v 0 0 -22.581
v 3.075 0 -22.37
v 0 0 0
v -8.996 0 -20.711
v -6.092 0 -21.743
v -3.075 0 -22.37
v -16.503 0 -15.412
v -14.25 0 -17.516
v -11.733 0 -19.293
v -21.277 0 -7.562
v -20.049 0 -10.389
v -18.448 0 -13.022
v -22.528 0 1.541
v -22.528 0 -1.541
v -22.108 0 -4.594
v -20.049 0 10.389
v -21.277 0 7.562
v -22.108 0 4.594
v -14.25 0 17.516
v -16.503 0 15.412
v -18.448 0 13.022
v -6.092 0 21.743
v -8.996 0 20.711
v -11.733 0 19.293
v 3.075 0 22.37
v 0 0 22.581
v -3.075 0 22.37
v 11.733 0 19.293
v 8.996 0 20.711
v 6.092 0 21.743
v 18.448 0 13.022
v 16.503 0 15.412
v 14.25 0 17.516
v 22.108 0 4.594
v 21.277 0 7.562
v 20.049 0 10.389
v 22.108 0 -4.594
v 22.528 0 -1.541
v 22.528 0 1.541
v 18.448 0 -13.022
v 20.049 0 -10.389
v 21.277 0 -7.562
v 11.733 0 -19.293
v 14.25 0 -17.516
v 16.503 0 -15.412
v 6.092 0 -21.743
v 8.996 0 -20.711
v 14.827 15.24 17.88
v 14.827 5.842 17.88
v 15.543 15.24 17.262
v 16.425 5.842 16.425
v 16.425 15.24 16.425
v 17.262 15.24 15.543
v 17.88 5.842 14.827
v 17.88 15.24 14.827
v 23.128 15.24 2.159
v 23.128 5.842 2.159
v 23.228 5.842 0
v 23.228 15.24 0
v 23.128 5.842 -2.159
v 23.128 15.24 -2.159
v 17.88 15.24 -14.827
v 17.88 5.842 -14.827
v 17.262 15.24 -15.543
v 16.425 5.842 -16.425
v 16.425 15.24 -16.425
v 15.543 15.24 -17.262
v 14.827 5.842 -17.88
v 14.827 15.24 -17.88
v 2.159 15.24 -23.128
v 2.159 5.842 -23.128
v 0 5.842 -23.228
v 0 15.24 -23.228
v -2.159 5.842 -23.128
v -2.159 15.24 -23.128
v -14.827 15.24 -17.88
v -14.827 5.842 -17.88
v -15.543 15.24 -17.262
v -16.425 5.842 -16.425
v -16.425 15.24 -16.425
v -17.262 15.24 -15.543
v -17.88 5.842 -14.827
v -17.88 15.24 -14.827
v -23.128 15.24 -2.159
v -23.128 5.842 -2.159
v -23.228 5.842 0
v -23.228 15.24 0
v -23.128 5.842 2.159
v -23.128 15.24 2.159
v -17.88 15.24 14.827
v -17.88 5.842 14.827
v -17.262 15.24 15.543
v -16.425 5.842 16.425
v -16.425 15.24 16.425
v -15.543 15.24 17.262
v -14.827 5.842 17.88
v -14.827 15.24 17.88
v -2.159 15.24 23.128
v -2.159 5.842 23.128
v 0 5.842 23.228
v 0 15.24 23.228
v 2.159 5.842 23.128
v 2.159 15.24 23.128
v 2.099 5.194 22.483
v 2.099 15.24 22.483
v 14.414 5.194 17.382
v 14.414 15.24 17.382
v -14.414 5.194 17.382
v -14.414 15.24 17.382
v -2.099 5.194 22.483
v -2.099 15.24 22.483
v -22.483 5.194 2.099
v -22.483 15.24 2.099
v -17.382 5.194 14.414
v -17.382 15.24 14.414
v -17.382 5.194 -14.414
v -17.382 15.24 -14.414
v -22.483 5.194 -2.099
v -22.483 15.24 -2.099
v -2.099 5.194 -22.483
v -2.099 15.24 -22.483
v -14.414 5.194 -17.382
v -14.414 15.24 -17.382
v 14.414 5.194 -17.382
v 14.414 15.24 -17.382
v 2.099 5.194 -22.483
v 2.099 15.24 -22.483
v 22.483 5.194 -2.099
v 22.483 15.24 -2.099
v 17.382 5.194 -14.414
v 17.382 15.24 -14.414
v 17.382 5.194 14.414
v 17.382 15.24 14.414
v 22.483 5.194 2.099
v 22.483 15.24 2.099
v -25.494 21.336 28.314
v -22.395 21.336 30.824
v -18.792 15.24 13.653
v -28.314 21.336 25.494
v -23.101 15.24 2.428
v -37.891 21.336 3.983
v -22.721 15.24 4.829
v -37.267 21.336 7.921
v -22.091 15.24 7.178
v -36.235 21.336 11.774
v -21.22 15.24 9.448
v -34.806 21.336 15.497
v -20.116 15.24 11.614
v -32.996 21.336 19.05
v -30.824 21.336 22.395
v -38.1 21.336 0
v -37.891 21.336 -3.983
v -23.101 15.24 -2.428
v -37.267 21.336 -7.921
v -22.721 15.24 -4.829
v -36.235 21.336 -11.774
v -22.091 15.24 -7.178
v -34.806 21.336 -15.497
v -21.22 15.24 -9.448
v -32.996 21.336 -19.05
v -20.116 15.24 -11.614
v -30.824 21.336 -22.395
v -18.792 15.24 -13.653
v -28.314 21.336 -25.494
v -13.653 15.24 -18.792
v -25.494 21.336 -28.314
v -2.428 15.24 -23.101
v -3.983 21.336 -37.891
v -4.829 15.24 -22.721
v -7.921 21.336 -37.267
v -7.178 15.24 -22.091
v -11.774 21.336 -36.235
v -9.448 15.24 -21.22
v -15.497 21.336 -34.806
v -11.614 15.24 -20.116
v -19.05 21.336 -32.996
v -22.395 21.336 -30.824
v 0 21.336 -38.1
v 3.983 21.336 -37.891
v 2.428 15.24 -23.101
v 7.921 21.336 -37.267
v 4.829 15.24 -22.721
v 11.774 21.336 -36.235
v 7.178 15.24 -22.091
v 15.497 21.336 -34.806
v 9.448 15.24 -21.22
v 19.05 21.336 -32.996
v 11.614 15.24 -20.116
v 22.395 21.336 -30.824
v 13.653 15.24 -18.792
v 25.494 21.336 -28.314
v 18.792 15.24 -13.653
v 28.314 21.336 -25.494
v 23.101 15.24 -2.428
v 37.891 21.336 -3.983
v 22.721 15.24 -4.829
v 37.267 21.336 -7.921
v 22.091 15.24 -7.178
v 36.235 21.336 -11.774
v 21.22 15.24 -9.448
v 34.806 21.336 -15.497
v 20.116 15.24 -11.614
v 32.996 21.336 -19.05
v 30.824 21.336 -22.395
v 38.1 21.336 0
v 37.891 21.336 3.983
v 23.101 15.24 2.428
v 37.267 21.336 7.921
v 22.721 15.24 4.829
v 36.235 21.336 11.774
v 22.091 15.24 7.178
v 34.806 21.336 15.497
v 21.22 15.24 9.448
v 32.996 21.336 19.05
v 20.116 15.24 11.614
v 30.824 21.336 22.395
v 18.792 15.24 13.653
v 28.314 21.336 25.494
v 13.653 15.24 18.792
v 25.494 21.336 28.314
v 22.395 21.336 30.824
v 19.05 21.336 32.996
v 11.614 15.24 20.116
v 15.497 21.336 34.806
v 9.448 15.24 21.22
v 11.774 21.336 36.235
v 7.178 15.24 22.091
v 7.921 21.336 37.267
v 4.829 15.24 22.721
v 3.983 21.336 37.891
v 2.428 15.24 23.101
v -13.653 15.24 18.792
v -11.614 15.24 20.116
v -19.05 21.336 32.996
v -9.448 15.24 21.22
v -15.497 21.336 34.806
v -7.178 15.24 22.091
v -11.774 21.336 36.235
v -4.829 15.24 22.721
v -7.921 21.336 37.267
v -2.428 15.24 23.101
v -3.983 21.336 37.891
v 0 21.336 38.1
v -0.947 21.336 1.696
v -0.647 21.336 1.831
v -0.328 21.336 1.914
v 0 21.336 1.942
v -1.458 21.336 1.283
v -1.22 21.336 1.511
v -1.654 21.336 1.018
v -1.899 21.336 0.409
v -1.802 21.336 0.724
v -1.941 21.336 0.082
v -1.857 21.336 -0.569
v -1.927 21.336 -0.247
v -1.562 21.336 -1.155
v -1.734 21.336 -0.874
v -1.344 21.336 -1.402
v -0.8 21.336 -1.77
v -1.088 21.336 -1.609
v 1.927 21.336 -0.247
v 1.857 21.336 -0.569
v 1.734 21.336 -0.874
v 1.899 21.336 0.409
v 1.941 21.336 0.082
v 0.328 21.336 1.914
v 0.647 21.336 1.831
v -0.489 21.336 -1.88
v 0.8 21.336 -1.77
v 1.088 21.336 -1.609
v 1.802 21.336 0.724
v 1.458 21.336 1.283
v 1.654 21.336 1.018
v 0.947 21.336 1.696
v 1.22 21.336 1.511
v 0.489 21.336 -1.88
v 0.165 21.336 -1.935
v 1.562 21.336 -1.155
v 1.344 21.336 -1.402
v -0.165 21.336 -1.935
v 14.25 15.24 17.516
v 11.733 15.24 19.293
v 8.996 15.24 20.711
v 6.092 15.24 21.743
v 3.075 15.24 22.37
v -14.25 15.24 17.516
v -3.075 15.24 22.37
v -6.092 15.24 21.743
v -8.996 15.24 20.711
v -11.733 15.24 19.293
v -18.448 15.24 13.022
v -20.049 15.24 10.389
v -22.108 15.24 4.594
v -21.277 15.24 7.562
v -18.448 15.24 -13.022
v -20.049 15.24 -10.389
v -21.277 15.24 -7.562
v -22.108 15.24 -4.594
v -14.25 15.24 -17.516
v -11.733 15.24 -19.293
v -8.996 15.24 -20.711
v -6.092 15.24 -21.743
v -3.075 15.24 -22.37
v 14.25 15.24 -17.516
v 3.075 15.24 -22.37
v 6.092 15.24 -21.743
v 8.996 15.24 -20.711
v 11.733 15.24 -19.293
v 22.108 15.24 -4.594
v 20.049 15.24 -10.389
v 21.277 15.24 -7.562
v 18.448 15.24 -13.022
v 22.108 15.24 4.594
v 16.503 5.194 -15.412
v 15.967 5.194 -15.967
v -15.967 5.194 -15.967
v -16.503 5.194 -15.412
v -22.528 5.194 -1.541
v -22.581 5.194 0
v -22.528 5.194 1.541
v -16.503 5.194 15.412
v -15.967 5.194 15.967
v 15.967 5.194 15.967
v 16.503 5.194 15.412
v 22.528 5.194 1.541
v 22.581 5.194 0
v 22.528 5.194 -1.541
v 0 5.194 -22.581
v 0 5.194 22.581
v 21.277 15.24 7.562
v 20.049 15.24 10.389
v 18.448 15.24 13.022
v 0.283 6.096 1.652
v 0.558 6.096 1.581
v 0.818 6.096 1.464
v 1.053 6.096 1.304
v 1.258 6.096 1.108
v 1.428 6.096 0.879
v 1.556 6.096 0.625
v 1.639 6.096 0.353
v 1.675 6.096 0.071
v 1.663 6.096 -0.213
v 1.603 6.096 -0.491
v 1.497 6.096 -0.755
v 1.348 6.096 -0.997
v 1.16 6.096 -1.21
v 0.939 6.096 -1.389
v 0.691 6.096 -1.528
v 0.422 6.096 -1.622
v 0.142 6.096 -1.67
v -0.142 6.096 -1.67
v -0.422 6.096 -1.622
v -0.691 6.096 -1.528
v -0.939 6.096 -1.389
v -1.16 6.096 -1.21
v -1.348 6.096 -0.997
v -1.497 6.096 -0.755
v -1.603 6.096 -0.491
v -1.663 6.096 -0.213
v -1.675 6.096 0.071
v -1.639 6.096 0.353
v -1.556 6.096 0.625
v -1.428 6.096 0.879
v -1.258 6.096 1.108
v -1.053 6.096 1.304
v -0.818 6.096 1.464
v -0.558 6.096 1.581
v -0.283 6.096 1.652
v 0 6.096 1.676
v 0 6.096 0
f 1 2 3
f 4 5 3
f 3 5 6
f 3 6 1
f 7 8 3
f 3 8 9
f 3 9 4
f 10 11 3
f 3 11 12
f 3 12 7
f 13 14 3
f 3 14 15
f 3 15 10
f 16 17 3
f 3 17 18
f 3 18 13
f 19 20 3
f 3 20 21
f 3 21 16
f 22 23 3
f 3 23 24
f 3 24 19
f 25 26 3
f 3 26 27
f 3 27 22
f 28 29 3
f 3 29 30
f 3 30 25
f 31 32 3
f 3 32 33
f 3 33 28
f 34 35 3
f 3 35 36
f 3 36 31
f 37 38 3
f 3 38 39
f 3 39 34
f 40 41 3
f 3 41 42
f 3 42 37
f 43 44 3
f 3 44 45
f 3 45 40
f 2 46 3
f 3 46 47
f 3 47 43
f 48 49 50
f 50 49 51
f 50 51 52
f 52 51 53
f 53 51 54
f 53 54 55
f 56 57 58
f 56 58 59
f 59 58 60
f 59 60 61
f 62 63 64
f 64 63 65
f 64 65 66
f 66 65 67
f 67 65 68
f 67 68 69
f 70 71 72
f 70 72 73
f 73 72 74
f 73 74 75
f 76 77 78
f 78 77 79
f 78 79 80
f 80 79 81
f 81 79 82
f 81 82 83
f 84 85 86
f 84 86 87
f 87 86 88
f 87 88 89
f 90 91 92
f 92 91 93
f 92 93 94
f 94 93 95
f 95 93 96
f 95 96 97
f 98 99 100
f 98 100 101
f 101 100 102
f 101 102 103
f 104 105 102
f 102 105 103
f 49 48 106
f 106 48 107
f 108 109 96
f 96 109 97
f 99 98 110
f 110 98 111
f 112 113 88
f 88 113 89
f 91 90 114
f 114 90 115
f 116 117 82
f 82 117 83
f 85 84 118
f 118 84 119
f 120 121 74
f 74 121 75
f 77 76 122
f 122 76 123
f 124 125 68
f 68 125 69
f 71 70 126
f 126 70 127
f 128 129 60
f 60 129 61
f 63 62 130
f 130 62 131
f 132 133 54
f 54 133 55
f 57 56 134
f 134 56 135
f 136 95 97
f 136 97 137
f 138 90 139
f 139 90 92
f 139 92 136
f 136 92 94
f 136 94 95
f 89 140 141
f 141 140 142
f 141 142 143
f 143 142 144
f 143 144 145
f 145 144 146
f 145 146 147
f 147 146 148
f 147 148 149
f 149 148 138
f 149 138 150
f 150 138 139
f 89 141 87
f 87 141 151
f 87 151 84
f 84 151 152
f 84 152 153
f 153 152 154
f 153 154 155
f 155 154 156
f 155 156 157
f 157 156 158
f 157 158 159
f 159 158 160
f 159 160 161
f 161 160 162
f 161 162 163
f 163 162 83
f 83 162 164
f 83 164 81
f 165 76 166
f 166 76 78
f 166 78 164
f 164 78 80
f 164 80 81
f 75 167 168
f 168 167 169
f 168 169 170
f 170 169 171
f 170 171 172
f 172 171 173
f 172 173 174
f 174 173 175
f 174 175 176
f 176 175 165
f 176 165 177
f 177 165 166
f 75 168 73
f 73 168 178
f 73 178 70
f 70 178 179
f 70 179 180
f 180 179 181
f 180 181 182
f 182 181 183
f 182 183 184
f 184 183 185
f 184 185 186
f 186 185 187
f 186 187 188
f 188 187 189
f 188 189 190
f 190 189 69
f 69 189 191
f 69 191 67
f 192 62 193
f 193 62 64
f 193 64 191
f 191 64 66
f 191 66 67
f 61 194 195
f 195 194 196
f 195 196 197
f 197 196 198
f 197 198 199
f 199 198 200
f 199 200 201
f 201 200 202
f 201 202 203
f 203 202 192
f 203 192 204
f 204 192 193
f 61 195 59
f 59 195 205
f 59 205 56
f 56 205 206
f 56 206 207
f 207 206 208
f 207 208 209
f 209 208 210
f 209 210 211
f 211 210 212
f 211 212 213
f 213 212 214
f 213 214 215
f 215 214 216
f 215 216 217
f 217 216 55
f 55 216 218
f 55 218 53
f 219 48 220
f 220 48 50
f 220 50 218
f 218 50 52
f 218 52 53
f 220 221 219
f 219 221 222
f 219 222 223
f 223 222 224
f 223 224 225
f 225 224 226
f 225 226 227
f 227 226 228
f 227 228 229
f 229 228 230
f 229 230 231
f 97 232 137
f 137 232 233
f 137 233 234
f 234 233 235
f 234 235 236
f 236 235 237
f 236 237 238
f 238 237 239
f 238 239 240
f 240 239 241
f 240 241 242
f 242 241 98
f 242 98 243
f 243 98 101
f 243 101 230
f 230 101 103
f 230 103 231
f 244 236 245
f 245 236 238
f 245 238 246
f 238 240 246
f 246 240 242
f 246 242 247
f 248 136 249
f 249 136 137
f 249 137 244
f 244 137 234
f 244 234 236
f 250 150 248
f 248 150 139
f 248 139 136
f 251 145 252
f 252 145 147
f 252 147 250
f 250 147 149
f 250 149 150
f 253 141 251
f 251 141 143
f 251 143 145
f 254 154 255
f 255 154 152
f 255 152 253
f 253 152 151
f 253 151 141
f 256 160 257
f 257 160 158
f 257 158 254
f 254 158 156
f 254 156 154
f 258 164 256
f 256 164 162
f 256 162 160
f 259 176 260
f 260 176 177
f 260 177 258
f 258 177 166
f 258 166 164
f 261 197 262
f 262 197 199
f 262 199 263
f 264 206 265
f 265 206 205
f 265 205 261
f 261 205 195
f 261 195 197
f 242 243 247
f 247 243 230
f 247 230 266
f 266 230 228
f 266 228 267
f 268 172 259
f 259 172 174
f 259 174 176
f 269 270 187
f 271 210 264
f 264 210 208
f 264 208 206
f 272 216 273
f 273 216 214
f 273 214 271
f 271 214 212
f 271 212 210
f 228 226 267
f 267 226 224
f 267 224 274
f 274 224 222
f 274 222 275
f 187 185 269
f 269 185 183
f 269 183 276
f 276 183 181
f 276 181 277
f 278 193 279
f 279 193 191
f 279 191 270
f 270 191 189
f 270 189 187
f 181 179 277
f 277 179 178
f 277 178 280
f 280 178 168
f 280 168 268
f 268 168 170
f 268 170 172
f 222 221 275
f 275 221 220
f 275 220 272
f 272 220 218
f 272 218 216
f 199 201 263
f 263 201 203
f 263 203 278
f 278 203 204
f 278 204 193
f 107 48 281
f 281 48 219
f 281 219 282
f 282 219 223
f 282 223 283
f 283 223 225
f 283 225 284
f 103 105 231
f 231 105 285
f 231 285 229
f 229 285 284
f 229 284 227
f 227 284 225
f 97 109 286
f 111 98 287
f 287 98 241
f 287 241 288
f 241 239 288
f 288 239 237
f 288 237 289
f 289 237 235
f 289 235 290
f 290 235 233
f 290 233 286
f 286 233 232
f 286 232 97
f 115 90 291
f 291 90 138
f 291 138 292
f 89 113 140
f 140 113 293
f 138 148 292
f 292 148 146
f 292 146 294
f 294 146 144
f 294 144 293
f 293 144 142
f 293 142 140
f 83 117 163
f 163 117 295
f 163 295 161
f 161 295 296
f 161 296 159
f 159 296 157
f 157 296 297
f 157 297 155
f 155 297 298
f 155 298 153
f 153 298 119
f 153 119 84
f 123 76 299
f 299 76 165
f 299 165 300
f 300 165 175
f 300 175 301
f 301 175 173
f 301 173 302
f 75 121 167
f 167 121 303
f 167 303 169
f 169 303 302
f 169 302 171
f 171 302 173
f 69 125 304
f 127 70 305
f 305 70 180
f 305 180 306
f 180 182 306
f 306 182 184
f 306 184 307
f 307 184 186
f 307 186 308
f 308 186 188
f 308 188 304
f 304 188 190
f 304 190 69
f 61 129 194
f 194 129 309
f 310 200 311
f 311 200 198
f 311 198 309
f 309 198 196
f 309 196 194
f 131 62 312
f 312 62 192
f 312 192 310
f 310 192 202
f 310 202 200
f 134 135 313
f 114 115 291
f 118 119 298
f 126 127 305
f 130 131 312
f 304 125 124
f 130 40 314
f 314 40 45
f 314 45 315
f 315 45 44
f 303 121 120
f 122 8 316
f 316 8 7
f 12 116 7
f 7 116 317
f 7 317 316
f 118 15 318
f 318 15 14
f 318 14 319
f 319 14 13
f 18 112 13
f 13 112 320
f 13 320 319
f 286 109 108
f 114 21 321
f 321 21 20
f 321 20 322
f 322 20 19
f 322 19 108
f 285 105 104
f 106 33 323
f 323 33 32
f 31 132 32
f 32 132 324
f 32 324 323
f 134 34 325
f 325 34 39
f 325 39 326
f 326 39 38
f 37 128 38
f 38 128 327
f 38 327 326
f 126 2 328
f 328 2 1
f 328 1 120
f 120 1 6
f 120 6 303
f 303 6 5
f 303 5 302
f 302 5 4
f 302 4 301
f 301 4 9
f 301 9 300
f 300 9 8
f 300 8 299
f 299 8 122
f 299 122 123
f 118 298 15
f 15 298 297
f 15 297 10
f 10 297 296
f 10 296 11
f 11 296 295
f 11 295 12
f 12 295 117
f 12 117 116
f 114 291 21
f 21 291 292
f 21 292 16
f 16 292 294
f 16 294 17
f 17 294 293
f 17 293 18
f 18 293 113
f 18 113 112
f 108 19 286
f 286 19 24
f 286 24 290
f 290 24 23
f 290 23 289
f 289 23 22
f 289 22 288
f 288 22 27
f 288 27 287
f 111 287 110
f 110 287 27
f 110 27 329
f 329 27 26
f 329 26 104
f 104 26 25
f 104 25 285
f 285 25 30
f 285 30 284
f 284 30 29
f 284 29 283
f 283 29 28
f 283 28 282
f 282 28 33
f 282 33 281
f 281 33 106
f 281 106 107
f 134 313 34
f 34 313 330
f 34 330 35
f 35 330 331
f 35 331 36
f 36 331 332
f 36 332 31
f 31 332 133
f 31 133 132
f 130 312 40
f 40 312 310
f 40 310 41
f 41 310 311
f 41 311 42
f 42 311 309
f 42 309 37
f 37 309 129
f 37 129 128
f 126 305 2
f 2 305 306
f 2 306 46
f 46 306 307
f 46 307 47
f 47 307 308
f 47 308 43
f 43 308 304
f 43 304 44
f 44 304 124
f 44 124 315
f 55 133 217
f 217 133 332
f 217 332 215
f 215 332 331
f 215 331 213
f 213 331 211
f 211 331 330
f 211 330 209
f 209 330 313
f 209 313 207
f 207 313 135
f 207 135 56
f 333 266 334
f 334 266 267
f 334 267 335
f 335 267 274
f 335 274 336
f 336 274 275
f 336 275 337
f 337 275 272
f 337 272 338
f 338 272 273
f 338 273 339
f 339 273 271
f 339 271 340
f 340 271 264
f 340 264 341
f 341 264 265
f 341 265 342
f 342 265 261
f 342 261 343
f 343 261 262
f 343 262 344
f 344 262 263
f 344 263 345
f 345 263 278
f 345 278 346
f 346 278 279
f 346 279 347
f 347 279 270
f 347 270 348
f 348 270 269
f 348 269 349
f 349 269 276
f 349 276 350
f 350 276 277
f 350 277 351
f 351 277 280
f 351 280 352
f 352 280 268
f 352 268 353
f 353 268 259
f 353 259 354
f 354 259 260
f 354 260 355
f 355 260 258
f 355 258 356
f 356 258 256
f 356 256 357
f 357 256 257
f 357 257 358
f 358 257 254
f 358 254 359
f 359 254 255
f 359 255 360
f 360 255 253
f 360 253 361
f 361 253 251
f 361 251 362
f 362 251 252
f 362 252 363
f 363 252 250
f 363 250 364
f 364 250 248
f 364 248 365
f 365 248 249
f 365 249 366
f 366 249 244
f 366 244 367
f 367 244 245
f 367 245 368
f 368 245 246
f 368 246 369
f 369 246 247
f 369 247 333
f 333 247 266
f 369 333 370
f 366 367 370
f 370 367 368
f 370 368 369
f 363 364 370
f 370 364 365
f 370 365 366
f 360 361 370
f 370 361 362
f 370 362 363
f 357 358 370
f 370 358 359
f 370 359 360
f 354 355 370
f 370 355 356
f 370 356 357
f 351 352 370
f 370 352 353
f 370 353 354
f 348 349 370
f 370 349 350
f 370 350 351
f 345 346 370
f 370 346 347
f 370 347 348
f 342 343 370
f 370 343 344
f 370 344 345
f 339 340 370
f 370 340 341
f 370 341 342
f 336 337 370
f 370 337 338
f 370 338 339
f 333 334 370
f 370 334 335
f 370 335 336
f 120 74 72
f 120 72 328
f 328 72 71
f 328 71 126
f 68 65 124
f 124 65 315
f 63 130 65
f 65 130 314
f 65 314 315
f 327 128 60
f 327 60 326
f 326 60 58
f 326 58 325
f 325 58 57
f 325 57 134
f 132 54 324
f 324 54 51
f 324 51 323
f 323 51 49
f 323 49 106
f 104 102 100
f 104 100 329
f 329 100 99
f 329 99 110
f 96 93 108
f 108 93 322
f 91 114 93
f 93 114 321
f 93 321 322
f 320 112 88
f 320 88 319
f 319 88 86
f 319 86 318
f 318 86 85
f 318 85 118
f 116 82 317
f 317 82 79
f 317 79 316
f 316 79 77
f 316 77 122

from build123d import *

# Parameters (mm, degrees)
SKETCH1_W          = 23.2283
SKETCH1_H          = 15.24
CUT_EXTRUDE1_START = -15.24
CUT_EXTRUDE1_DEPTH = 15.24
SKETCH3_R          = 1.6764
CUT_EXTRUDE2_DEPTH = 15.24
CUT_EXTRUDE3_START = -5.08
SKETCH4_R          = 23.2283
SKETCH4_R_2        = 22.5806
CUT_EXTRUDE3_DEPTH = 5.08
CHAMFER1_SIZE      = 0.762
DRAFT1_ANGLE       = 1


with BuildPart() as part:
    # Sketch1 → Revolve1 (revolve)
    with BuildSketch(Plane.XY, mode=Mode.PRIVATE) as revolve1_sk:
        with Locations((11.61415, 7.62)):
            Rectangle(SKETCH1_W, SKETCH1_H)
        Polygon((0, 21.336), (0, 15.24), (23.2283, 15.24), (38.1, 21.336), align=None)
    revolve(revolve1_sk.sketch.rotate(Axis((0, 0, 0), (0, 1, 0)), 90), axis=Axis((0, 0, 0), (0, 1, 0)))

    # Sketch2 → Cut-Extrude1 (cut)
    with BuildSketch(Plane.XZ.offset(CUT_EXTRUDE1_START)):
        with BuildLine():
            Line((2.159, 23.127746105), (2.09879825, 22.482849959))
            ThreePointArc((2.09879825, 22.482849959), (8.641221513, 20.861754172), (14.413701191, 17.381850141))
            Line((14.413701191, 17.381850141), (14.827142564, 17.880429645))
            ThreePointArc((14.827142564, 17.880429645), (8.889085572, 21.460150945), (2.159, 23.127746105))
        make_face()
        with BuildLine():
            ThreePointArc((-14.413701191, 17.381850141), (-8.641221513, 20.861754172), (-2.09879825, 22.482849959))
            Line((-2.09879825, 22.482849959), (-2.159, 23.127746105))
            ThreePointArc((-2.159, 23.127746105), (-8.889085572, 21.460150945), (-14.827142564, 17.880429645))
            Line((-14.827142564, 17.880429645), (-14.413701191, 17.381850141))
        make_face()
        with BuildLine():
            Line((-23.127746105, 2.159), (-22.482849959, 2.09879825))
            ThreePointArc((-22.482849959, 2.09879825), (-20.861754172, 8.641221513), (-17.381850141, 14.413701191))
            Line((-17.381850141, 14.413701191), (-17.880429645, 14.827142564))
            ThreePointArc((-17.880429645, 14.827142564), (-21.460150945, 8.889085572), (-23.127746105, 2.159))
        make_face()
        with BuildLine():
            Line((-17.880429645, -14.827142564), (-17.381850141, -14.413701191))
            ThreePointArc((-17.381850141, -14.413701191), (-20.861754172, -8.641221513), (-22.482849959, -2.09879825))
            Line((-22.482849959, -2.09879825), (-23.127746105, -2.159))
            ThreePointArc((-23.127746105, -2.159), (-21.460150945, -8.889085572), (-17.880429645, -14.827142564))
        make_face()
        with BuildLine():
            Line((-2.159, -23.127746105), (-2.09879825, -22.482849959))
            ThreePointArc((-2.09879825, -22.482849959), (-8.641221513, -20.861754172), (-14.413701191, -17.381850141))
            Line((-14.413701191, -17.381850141), (-14.827142564, -17.880429645))
            ThreePointArc((-14.827142564, -17.880429645), (-8.889085572, -21.460150945), (-2.159, -23.127746105))
        make_face()
        with BuildLine():
            Line((14.827142564, -17.880429645), (14.413701191, -17.381850141))
            ThreePointArc((14.413701191, -17.381850141), (8.641221513, -20.861754172), (2.09879825, -22.482849959))
            Line((2.09879825, -22.482849959), (2.159, -23.127746105))
            ThreePointArc((2.159, -23.127746105), (8.889085572, -21.460150945), (14.827142564, -17.880429645))
        make_face()
        with BuildLine():
            Line((23.127746105, -2.159), (22.482849959, -2.09879825))
            ThreePointArc((22.482849959, -2.09879825), (20.861754172, -8.641221513), (17.381850141, -14.413701191))
            Line((17.381850141, -14.413701191), (17.880429645, -14.827142564))
            ThreePointArc((17.880429645, -14.827142564), (21.460150945, -8.889085572), (23.127746105, -2.159))
        make_face()
        with BuildLine():
            Line((17.880429645, 14.827142564), (17.381850141, 14.413701191))
            ThreePointArc((17.381850141, 14.413701191), (20.861754172, 8.641221513), (22.482849959, 2.09879825))
            Line((22.482849959, 2.09879825), (23.127746105, 2.159))
            ThreePointArc((23.127746105, 2.159), (21.460150945, 8.889085572), (17.880429645, 14.827142564))
        make_face()
    extrude(amount=CUT_EXTRUDE1_DEPTH, mode=Mode.SUBTRACT)

    # Sketch3 → Cut-Extrude2 (cut)
    with BuildSketch(Plane(origin=(0, 21.336, 0), x_dir=(1, 0, 0), z_dir=(0, 1, 0))):
        with Locations(Location((0, 0, 0), (0, 0, 270))):
            Circle(SKETCH3_R)
    extrude(amount=-CUT_EXTRUDE2_DEPTH, mode=Mode.SUBTRACT)

    # Sketch4 → Cut-Extrude3 (cut)
    with BuildSketch(Plane.XZ.offset(CUT_EXTRUDE3_START)):
        Circle(SKETCH4_R)
        with Locations(Location((0, 0, 0), (0, 0, 270))):
            Circle(SKETCH4_R_2, mode=Mode.SUBTRACT)
    extrude(amount=CUT_EXTRUDE3_DEPTH, mode=Mode.SUBTRACT)

    # Chamfer1
    # the kernel refuses this chamfer: 0.762 mm, written as the material it takes off along each edge
    with BuildSketch(Plane(origin=(0, 5.08, 0), x_dir=(-0.17651563537313197, 0, -0.9842978362613723), z_dir=(-0.9842978362613723, 0, 0.17651563537313197))) as chamfer1_piece_1_section:
        Polygon((23.2283 - CHAMFER1_SIZE, 0), (23.2283, -CHAMFER1_SIZE), (23.2283, 0), align=None)
    chamfer1_piece_1 = revolve(axis=Axis((0, 5.08, 0), (0, -1, 0)), revolution_arc=20.333741592, mode=Mode.PRIVATE)
    chamfer1_piece_1 = chamfer1_piece_1 - Plane(origin=(0, 5.340057495, 0), x_dir=(0, 0, -1), z_dir=(0, 1, 0)) * Cylinder(22.5806, 93, mode=Mode.PRIVATE)
    add(chamfer1_piece_1, mode=Mode.SUBTRACT)
    with BuildSketch(Plane(origin=(0, 5.08, 0), x_dir=(0.5711882719698622, 0, -0.8208190774854607), z_dir=(-0.8208190774854607, 0, -0.5711882719698622))) as chamfer1_piece_2_section:
        Polygon((23.2283, -CHAMFER1_SIZE), (23.2283 - CHAMFER1_SIZE, 0), (23.2283, 0), align=None)
    chamfer1_piece_2 = revolve(axis=Axis((0, 5.08, 0), (0, -1, 0)), revolution_arc=20.333741592, mode=Mode.PRIVATE)
    chamfer1_piece_2 = chamfer1_piece_2 - Plane(origin=(0, 5.340057495, 0), x_dir=(0, 0, -1), z_dir=(0, 1, 0)) * Cylinder(22.5806, 93, mode=Mode.PRIVATE)
    add(chamfer1_piece_2, mode=Mode.SUBTRACT)
    with BuildSketch(Plane(origin=(0, 5.08, 0), x_dir=(0.9842978362613659, 0, -0.17651563537316883), z_dir=(-0.17651563537316883, 0, -0.9842978362613659))) as chamfer1_piece_3_section:
        Polygon((23.2283 - CHAMFER1_SIZE, 0), (23.2283, -CHAMFER1_SIZE), (23.2283, 0), align=None)
    chamfer1_piece_3 = revolve(axis=Axis((0, 5.08, 0), (0, -1, 0)), revolution_arc=20.333741592, mode=Mode.PRIVATE)
    chamfer1_piece_3 = chamfer1_piece_3 - Plane(origin=(0, 5.340057495, 0), x_dir=(0, 0, -1), z_dir=(0, 1, 0)) * Cylinder(22.5806, 93, mode=Mode.PRIVATE)
    add(chamfer1_piece_3, mode=Mode.SUBTRACT)
    with BuildSketch(Plane(origin=(0, 5.08, 0), x_dir=(0.8208190774854608, 0, 0.5711882719698618), z_dir=(0.5711882719698618, 0, -0.8208190774854608))) as chamfer1_piece_4_section:
        Polygon((23.2283 - CHAMFER1_SIZE, 0), (23.2283, -CHAMFER1_SIZE), (23.2283, 0), align=None)
    chamfer1_piece_4 = revolve(axis=Axis((0, 5.08, 0), (0, -1, 0)), revolution_arc=20.333741592, mode=Mode.PRIVATE)
    chamfer1_piece_4 = chamfer1_piece_4 - Plane(origin=(0, 5.340057495, 0), x_dir=(0, 0, -1), z_dir=(0, 1, 0)) * Cylinder(22.5806, 93, mode=Mode.PRIVATE)
    add(chamfer1_piece_4, mode=Mode.SUBTRACT)
    with BuildSketch(Plane(origin=(0, 5.08, 0), x_dir=(0.1765156353731264, 0, 0.9842978362613735), z_dir=(0.9842978362613735, 0, -0.1765156353731264))) as chamfer1_piece_5_section:
        Polygon((23.2283 - CHAMFER1_SIZE, 0), (23.2283, -CHAMFER1_SIZE), (23.2283, 0), align=None)
    chamfer1_piece_5 = revolve(axis=Axis((0, 5.08, 0), (0, -1, 0)), revolution_arc=20.333741592, mode=Mode.PRIVATE)
    chamfer1_piece_5 = chamfer1_piece_5 - Plane(origin=(0, 5.340057495, 0), x_dir=(0, 0, -1), z_dir=(0, 1, 0)) * Cylinder(22.5806, 93, mode=Mode.PRIVATE)
    add(chamfer1_piece_5, mode=Mode.SUBTRACT)
    with BuildSketch(Plane(origin=(0, 5.08, 0), x_dir=(-0.5711882719698653, 0, 0.8208190774854587), z_dir=(0.8208190774854587, 0, 0.5711882719698653))) as chamfer1_piece_6_section:
        Polygon((23.2283 - CHAMFER1_SIZE, 0), (23.2283, -CHAMFER1_SIZE), (23.2283, 0), align=None)
    chamfer1_piece_6 = revolve(axis=Axis((0, 5.08, 0), (0, -1, 0)), revolution_arc=20.333741592, mode=Mode.PRIVATE)
    chamfer1_piece_6 = chamfer1_piece_6 - Plane(origin=(0, 5.340057495, 0), x_dir=(0, 0, -1), z_dir=(0, 1, 0)) * Cylinder(22.5806, 93, mode=Mode.PRIVATE)
    add(chamfer1_piece_6, mode=Mode.SUBTRACT)
    with BuildSketch(Plane(origin=(0, 5.08, 0), x_dir=(-0.9842978362613705, 0, 0.17651563537314238), z_dir=(0.17651563537314238, 0, 0.9842978362613705))) as chamfer1_piece_7_section:
        Polygon((23.2283 - CHAMFER1_SIZE, 0), (23.2283, -CHAMFER1_SIZE), (23.2283, 0), align=None)
    chamfer1_piece_7 = revolve(axis=Axis((0, 5.08, 0), (0, -1, 0)), revolution_arc=20.333741592, mode=Mode.PRIVATE)
    chamfer1_piece_7 = chamfer1_piece_7 - Plane(origin=(0, 5.340057495, 0), x_dir=(0, 0, -1), z_dir=(0, 1, 0)) * Cylinder(22.5806, 93, mode=Mode.PRIVATE)
    add(chamfer1_piece_7, mode=Mode.SUBTRACT)
    with BuildSketch(Plane(origin=(0, 5.08, 0), x_dir=(-0.8208190774854607, 0, -0.5711882719698622), z_dir=(-0.5711882719698622, 0, 0.8208190774854607))) as chamfer1_piece_8_section:
        Polygon((23.2283 - CHAMFER1_SIZE, 0), (23.2283, -CHAMFER1_SIZE), (23.2283, 0), align=None)
    chamfer1_piece_8 = revolve(axis=Axis((0, 5.08, 0), (0, -1, 0)), revolution_arc=20.333741592, mode=Mode.PRIVATE)
    chamfer1_piece_8 = chamfer1_piece_8 - Plane(origin=(0, 5.340057495, 0), x_dir=(0, 0, -1), z_dir=(0, 1, 0)) * Cylinder(22.5806, 93, mode=Mode.PRIVATE)
    add(chamfer1_piece_8, mode=Mode.SUBTRACT)

    # Draft1
    draft1_faces = [part.faces().sort_by_distance(p)[0] for p in [
        (0, 13.716, -1.6764),
    ]]
    draft(draft1_faces, Plane.ZX.offset(6.096), DRAFT1_ANGLE)


solid = part.part
